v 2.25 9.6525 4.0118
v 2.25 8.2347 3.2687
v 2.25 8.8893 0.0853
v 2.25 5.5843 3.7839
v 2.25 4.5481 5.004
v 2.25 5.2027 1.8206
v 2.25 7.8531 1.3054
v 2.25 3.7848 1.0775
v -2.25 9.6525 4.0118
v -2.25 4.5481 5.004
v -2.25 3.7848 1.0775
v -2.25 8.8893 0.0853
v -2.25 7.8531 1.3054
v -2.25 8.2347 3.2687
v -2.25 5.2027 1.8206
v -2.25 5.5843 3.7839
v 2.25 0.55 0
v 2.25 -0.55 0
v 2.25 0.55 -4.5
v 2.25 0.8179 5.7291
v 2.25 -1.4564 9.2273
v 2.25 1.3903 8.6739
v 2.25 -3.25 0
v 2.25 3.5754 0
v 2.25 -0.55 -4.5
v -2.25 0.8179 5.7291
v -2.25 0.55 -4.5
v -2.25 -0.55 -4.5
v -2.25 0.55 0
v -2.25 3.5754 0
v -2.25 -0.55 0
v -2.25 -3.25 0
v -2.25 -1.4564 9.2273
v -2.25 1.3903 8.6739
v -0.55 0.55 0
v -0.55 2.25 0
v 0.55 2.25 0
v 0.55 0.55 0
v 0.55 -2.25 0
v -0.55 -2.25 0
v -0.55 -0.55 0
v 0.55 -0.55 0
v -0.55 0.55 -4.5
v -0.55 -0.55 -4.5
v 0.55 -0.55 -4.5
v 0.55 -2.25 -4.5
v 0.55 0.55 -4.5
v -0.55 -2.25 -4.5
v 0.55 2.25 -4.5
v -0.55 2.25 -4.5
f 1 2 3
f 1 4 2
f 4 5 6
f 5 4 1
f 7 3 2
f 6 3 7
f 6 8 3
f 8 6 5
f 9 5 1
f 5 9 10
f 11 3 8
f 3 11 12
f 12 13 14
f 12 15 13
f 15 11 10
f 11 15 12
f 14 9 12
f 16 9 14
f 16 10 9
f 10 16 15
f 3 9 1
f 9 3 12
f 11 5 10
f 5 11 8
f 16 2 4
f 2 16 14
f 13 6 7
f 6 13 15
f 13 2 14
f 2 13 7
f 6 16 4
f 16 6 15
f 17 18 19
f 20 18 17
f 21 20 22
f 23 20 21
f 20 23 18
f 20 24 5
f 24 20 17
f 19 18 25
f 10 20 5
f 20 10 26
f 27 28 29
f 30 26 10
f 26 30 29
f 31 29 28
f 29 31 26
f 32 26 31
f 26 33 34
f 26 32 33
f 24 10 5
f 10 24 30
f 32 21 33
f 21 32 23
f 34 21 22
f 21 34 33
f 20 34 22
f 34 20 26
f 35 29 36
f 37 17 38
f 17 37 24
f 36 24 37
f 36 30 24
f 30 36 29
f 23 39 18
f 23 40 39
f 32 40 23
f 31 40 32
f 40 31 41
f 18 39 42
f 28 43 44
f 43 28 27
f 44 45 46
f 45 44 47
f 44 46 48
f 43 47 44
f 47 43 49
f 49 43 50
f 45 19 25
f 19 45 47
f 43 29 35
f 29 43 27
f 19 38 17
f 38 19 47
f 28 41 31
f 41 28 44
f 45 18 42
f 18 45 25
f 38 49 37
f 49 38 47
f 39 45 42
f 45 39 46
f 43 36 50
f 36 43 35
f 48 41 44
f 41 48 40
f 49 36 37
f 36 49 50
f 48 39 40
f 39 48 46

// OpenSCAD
// Mounting Stem Size (mm)
stemSize = 4.5;

// Mounting Stem Thickness (mm)
stemThick = 1.1;

// Mounting Stem Depth (mm)
stemDepth = 4.5;

// Base Height
baseHeight = 6.4;

// Base Width
baseWidth = 6.7;

// Base Offset
baseOffset = -1;

// Loop Heght
loopHeight = 4;

// loop Length
loopLength = 5.2;

// Loop Slot Height
loopSlotHeight = 2;

// loop Length
loopSlotLength = 2.7;

// Endstop Length
endstopLength = 2.9;

// Endstop Height
endstopHeight = 3;

// Loop Angle (degrees)
loopAngle = -11;


module mountStem()
{
	translate([0,0,-stemDepth/2]) union()
	{
		cube([stemSize,stemThick,stemDepth],true);
		cube([stemThick,stemSize,stemDepth],true);
	};
};

module loop()
{	
	difference ()
	{
		translate([-stemSize/2,-stemSize/2+baseOffset,0]) rotate([loopAngle,0,0] )union()
		{
			cube([stemSize,baseWidth,baseHeight]); // Base
			translate([0,baseWidth,(baseHeight-loopHeight)]) difference () // Loop
			{	
				cube([stemSize,loopLength, loopHeight]);
				translate([-stemSize/2, (loopLength-loopSlotLength)/2, (loopHeight-loopSlotHeight)/2])
					cube([stemSize*2,loopSlotLength,loopSlotHeight]);
			}
			translate([0,0,baseHeight]) cube([stemSize, endstopLength, endstopHeight]); // Endstop
		};
	
		mirror([0,0,1]) translate([(stemSize+baseWidth)/-2,(stemSize+baseWidth)/-2,0]) cube((stemSize+baseWidth*2));
	}
};





loop();
mountStem();
